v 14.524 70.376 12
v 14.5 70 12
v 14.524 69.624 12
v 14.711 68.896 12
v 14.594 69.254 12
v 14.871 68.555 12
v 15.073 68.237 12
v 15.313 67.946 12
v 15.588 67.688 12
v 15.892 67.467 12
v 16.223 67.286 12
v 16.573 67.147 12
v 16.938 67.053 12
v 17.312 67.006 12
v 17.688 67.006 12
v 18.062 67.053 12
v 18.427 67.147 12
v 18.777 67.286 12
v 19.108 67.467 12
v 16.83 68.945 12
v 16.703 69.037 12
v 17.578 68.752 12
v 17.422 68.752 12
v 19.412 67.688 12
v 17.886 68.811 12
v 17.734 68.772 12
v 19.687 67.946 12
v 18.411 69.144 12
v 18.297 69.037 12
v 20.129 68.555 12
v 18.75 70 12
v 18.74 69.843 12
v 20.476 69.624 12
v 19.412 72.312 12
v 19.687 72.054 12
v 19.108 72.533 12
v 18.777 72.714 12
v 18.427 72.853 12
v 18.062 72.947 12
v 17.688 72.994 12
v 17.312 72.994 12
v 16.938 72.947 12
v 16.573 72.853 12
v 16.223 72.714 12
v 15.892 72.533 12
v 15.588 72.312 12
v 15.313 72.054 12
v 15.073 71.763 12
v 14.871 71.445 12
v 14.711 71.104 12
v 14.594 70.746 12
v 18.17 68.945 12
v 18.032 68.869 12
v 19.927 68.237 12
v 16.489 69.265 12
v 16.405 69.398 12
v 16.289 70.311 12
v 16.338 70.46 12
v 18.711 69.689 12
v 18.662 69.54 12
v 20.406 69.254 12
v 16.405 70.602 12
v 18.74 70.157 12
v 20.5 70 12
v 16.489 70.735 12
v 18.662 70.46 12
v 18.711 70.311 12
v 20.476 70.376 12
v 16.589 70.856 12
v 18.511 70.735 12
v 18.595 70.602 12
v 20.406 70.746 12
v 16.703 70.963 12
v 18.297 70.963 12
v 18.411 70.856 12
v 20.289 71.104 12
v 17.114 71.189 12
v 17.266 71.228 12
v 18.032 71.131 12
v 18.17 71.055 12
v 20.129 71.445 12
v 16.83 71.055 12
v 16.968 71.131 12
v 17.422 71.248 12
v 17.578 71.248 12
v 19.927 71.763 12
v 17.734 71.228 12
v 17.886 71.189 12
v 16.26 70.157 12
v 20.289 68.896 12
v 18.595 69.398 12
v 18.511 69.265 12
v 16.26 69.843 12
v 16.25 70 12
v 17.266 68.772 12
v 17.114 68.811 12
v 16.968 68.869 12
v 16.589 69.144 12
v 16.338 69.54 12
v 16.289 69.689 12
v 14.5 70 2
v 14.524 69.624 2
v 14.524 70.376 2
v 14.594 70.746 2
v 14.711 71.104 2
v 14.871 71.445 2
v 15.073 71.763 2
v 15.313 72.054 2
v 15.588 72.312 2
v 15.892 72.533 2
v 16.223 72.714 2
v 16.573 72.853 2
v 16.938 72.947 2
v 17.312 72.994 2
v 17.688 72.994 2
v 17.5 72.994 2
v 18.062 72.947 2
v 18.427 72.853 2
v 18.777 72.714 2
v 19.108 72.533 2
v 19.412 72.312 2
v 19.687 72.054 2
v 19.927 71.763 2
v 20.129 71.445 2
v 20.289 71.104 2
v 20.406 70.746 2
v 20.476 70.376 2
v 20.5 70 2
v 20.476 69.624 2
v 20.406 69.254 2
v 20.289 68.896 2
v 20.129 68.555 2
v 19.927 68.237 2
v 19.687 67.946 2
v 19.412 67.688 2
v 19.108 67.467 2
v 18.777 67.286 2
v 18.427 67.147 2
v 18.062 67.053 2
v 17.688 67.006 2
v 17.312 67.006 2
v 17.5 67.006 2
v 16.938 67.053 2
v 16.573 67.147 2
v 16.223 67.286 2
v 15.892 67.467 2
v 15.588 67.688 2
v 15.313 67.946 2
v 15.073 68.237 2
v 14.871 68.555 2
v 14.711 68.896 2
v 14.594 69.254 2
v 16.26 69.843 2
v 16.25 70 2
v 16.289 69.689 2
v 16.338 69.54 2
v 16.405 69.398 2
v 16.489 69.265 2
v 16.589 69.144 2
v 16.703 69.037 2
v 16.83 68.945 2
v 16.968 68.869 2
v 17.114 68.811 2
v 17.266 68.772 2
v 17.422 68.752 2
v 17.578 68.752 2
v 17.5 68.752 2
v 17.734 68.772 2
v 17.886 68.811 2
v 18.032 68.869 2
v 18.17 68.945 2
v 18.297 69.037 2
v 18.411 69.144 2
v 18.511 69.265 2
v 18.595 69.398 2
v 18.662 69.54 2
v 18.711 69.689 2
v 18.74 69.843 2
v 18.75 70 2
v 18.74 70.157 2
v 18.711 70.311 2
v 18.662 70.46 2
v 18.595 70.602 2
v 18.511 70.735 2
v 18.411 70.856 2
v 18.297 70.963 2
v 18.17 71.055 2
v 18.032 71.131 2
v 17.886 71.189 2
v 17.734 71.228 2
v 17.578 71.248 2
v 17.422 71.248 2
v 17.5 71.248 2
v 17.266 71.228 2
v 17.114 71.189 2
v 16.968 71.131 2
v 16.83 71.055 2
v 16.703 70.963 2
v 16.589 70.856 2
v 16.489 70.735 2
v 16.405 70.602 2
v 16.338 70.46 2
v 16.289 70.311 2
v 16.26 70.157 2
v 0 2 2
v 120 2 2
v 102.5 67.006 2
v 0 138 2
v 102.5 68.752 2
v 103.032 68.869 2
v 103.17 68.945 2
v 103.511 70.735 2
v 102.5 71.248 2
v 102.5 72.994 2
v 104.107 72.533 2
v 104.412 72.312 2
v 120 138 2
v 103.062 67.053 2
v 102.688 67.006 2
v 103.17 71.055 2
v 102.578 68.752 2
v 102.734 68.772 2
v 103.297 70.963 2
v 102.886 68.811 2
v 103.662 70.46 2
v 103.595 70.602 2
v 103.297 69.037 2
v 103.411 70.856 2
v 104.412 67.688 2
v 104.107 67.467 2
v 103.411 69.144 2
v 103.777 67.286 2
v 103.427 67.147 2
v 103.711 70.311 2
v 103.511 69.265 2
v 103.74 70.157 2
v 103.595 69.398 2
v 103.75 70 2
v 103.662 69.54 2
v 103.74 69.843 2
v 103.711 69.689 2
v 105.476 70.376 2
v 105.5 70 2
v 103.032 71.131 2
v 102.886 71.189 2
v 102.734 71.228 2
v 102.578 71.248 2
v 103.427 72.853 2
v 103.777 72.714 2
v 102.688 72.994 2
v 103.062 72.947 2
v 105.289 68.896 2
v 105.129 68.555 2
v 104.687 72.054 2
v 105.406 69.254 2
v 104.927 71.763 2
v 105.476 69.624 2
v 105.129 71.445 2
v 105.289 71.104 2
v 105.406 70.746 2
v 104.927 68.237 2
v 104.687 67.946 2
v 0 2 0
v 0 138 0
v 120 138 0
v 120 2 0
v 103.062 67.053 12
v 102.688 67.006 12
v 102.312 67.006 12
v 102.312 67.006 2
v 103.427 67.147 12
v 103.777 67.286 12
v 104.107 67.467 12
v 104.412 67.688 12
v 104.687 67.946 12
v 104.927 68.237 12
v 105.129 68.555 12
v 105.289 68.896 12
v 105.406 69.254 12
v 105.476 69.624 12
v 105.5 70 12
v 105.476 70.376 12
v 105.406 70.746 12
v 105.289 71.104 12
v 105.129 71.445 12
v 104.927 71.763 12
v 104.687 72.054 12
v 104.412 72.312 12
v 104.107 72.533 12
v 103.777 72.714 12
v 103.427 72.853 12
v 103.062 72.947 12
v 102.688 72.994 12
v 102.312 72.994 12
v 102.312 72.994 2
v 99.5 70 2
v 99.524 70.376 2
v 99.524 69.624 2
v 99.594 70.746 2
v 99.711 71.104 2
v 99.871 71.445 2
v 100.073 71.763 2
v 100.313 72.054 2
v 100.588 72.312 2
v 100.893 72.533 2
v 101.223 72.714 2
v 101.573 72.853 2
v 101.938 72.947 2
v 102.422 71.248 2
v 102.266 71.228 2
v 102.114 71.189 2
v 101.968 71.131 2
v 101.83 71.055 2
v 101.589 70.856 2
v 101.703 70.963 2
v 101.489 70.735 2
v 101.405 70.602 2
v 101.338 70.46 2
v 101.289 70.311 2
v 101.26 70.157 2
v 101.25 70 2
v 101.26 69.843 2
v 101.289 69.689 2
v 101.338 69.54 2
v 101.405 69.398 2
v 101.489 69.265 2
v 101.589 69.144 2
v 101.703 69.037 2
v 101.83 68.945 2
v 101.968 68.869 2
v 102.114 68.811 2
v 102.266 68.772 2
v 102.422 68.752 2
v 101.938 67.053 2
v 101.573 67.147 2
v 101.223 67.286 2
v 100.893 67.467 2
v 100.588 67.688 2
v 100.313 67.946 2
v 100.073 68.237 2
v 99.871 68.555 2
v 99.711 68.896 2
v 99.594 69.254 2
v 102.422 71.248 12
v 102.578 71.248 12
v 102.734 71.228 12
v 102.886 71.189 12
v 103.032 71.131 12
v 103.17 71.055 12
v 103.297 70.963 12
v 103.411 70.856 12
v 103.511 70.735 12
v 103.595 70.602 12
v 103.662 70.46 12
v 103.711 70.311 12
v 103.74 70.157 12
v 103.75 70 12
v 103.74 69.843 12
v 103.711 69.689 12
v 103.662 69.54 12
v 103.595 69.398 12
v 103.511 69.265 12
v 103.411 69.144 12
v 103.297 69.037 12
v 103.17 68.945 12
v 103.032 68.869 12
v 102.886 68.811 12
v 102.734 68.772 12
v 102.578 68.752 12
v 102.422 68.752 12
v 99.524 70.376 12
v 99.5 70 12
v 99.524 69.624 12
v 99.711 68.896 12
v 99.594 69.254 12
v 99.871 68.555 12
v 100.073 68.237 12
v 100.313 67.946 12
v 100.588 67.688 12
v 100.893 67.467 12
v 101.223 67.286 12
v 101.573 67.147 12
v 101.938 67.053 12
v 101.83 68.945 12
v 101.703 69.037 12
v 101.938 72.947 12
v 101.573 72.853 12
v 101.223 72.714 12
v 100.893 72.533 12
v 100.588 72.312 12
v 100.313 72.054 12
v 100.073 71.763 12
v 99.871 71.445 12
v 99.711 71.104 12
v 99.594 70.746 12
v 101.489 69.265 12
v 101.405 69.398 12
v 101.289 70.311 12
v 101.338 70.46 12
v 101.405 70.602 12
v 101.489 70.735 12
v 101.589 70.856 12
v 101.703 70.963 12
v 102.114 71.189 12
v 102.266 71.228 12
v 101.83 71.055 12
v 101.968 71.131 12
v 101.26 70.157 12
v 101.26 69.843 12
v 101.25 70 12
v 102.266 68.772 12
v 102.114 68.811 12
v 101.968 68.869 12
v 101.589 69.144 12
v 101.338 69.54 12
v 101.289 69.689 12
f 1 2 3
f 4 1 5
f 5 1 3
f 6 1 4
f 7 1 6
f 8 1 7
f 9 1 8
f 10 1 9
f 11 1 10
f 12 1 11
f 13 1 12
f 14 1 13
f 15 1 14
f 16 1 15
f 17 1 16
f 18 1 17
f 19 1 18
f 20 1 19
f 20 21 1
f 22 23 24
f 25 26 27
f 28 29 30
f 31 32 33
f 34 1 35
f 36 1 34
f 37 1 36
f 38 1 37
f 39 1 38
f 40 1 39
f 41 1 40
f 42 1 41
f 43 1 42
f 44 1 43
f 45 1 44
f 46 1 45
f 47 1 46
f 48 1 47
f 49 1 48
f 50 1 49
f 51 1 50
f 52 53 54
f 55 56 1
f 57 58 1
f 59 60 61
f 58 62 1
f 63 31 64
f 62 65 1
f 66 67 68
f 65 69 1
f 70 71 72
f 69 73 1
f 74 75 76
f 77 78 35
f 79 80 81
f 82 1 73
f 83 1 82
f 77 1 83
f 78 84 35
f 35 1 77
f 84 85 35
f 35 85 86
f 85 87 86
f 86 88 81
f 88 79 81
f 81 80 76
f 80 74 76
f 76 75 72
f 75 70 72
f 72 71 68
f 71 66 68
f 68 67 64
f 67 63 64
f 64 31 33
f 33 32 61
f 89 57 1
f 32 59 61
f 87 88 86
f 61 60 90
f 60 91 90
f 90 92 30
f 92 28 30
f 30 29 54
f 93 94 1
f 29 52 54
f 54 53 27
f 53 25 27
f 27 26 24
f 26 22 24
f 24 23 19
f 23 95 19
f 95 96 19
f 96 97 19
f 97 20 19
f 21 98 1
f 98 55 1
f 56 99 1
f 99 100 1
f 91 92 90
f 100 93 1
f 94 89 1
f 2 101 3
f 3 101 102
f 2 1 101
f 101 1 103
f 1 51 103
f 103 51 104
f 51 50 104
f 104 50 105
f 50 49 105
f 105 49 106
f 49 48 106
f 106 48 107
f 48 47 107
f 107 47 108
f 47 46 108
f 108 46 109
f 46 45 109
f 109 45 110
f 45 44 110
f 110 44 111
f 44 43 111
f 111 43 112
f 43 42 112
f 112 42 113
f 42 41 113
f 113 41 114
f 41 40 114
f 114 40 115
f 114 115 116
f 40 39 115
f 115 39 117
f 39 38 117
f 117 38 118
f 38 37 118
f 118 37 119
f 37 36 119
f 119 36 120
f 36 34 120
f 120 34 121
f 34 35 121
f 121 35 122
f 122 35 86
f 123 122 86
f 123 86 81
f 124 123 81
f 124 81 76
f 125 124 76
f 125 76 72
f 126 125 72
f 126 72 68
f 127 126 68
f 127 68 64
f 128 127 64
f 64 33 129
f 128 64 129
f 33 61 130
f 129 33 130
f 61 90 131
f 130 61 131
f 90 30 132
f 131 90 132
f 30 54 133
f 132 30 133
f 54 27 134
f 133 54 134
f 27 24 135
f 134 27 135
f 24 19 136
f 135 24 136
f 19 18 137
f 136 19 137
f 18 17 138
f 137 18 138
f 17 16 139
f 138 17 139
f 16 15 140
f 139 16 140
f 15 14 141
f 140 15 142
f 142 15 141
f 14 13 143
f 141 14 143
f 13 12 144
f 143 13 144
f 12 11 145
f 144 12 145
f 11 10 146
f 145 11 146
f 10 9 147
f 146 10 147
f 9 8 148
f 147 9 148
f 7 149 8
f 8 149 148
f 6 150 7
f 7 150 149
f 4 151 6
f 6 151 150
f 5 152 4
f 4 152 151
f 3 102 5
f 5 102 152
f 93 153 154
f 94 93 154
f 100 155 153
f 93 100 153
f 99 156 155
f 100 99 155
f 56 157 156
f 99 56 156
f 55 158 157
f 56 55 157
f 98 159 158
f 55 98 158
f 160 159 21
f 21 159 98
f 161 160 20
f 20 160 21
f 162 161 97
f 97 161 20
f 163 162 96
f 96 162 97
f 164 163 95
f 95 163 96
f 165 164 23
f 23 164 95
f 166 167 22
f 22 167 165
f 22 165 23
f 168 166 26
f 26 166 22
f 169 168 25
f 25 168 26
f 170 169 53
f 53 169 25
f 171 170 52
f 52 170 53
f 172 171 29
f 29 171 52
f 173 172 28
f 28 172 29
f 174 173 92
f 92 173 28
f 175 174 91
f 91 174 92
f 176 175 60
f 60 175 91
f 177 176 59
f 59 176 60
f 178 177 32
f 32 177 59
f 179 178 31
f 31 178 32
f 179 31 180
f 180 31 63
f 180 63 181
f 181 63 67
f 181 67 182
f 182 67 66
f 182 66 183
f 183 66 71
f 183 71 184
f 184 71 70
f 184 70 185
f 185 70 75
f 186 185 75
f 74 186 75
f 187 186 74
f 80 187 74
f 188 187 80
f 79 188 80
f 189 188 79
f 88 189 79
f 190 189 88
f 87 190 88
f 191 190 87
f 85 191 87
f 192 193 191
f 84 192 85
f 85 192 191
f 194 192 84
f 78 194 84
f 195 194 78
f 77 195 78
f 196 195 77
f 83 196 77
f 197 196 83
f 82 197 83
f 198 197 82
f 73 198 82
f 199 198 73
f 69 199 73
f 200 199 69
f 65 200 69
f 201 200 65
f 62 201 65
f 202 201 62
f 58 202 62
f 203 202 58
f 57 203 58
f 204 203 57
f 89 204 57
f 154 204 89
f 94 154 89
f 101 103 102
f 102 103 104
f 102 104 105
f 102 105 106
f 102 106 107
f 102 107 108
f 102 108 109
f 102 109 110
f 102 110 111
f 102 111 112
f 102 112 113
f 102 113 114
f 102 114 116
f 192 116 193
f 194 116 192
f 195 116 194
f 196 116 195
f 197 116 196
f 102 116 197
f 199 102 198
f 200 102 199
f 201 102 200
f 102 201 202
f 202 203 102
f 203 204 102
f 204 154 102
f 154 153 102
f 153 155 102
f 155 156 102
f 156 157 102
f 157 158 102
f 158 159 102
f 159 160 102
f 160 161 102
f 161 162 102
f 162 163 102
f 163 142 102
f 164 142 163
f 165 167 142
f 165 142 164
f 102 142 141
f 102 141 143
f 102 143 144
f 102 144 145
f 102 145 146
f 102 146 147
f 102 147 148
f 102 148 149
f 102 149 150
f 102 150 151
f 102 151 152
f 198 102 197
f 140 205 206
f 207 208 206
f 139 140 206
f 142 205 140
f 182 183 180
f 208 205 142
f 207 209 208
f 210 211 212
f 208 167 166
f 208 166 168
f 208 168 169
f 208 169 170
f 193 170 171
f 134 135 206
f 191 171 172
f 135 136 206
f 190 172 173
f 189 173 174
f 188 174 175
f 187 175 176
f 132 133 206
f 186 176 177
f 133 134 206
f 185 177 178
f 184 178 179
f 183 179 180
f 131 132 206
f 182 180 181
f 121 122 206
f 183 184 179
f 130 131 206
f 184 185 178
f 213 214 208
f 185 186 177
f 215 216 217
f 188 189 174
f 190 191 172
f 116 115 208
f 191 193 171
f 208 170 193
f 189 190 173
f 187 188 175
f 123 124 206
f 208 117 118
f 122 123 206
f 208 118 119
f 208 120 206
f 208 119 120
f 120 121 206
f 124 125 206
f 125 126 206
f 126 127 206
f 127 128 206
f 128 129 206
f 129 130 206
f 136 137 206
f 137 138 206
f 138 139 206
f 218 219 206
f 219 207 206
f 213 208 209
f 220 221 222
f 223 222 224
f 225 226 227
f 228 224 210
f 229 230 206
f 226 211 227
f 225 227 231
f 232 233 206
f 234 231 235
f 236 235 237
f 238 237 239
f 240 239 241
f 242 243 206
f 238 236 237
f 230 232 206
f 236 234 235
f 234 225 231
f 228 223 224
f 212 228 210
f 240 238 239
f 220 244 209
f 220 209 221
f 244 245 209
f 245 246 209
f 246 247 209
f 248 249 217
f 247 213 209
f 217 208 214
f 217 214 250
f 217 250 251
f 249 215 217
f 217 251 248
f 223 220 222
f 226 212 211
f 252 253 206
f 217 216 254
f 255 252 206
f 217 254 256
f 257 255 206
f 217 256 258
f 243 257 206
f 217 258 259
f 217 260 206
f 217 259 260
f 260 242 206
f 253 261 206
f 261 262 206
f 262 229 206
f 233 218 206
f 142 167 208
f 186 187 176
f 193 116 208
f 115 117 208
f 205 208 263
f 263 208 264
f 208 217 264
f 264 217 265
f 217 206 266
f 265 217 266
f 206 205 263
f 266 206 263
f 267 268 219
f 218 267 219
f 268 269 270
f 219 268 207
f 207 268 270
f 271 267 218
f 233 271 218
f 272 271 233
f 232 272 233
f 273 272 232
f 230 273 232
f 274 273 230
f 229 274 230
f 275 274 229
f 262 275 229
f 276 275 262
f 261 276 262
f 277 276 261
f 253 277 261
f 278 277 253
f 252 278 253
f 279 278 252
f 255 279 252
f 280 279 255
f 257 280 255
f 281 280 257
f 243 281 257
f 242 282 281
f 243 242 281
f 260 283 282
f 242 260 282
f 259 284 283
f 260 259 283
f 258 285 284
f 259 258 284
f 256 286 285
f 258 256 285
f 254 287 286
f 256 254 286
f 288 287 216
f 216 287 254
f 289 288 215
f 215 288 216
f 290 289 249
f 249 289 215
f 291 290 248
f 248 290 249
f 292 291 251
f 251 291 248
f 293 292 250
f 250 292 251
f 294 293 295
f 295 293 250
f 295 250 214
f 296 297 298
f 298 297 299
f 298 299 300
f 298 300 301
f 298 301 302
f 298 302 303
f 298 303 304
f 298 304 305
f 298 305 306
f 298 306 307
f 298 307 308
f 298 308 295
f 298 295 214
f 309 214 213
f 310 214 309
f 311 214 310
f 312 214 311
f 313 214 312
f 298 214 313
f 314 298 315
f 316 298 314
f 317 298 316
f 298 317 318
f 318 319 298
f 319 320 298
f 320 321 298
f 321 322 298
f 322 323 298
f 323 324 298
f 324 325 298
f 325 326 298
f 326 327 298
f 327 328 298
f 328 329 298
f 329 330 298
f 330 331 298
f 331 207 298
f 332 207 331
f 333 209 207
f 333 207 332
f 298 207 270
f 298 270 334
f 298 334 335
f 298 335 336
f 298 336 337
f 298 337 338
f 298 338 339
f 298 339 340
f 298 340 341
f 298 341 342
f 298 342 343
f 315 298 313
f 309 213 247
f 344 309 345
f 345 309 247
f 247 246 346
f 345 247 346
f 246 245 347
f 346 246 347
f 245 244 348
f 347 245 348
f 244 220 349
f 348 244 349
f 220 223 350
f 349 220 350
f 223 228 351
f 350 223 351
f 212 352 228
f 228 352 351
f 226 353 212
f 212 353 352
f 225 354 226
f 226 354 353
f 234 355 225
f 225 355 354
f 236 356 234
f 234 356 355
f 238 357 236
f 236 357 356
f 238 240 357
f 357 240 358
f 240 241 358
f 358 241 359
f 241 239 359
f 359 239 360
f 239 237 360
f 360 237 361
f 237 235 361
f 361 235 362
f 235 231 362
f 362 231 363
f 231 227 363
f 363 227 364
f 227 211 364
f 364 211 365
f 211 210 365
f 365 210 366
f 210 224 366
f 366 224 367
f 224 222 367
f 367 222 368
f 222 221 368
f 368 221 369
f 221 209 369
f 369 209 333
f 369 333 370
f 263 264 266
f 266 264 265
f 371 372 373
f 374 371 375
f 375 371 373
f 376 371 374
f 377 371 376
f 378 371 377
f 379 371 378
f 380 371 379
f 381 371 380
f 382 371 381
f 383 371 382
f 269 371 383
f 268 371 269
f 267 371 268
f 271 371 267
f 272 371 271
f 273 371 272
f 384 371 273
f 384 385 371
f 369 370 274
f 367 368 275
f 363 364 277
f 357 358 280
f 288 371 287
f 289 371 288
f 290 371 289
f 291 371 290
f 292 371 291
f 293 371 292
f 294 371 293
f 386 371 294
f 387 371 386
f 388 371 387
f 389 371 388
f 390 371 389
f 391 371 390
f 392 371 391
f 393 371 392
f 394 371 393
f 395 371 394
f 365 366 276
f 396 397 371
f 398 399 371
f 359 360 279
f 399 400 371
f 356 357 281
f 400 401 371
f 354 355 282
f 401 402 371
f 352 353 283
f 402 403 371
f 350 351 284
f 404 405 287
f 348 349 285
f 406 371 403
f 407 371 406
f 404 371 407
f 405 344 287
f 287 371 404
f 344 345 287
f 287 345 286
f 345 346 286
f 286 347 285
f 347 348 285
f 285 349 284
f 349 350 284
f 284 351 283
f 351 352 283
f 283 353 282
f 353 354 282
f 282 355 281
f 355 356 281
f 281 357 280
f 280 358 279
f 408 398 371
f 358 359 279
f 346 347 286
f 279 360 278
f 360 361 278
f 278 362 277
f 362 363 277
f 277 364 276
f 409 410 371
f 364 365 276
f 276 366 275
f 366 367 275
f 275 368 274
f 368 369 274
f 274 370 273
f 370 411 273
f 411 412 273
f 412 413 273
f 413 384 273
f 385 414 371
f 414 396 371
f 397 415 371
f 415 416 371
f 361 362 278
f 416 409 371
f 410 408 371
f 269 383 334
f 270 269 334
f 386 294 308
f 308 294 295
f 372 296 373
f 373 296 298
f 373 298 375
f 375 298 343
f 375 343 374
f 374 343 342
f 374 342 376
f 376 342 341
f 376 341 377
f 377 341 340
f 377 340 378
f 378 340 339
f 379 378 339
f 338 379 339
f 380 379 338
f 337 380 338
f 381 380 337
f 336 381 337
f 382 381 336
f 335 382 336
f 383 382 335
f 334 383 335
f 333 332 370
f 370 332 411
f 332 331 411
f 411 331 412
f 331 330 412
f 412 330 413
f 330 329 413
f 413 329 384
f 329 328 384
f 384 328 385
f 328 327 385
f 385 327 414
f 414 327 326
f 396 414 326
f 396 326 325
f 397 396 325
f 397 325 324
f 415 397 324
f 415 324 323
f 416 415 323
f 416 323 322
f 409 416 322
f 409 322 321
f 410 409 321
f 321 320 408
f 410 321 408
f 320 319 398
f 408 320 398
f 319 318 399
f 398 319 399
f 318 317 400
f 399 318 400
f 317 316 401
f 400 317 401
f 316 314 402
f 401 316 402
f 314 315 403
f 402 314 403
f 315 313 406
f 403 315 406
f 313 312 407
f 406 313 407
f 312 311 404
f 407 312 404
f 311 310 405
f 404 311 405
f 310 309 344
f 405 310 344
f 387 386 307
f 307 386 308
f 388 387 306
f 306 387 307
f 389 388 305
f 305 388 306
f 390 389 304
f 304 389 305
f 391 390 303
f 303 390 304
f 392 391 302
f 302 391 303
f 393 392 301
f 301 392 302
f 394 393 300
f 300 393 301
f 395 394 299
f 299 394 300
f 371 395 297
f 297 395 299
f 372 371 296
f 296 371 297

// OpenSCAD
// file: ../pi_mount.scad
module Standoff(h, r1, r2){
  difference() {
    cylinder(h=h, r=r1, $fn=50);
    cylinder(h=h+0.01, r=r2, $fn=50);
  }
}

module PiMount(){
  cube([85, 56, 1]);
  translate([24.05, 16.55, 1]) Standoff(6, 3, 1.5);
  translate([78.55, 44.95, 1]) Standoff(6, 3, 1.5);
}

module RelayMount(height){
  cube([75, 55, 1]);
  inner = 1.4;
  outer = 3;
  translate([3, 3, 1]) Standoff(height, outer, inner);
  translate([72, 3, 1]) Standoff(height, outer, inner);
  translate([3, 52, 1]) Standoff(height, outer, inner);
  translate([72, 52, 1]) Standoff(height, outer, inner);
}

module BarrierStripMount(depth){
  translate([5, 11, -depth]) cylinder(h=depth+0.2, r=2, $fn=50);
  translate([120, 11, -depth]) cylinder(h=depth+0.2, r=2, $fn=50);
}

translate([-62.5, -11, 0]) difference(){
  BarrierStripMount(depth=1.5);
}
// file: ../outlet.scad
module OutletMount(depth, height) {
  translate([0, 0, -depth]){
    cylinder(h=depth+0.1, r=1.25, $fn=50);
    translate([0, height, 0]) cylinder(h=depth+0.1, r=1.25, $fn=50);
  }
}

module OutletsMount(n_outlets, spacing, outlet_depth, outlet_height){
  for (x = [0:spacing:(n_outlets - 1) * spacing]){
    translate([x, 0, 0]) OutletMount(depth=outlet_depth, height=outlet_height);
  }
}

rotate([90, 0, 0]) difference(){
  translate([-50, -50, -1]) cube([2000, 2000, 1]);
  color("blue") OutletsMount(n_outlets=4, spacing=47, outlet_depth=2, outlet_height=85);
}
// file: ../rat_trap.scad
use <outlet.scad>
use <pi_mount.scad>

module RatTrapBox(length=215, width=140, height=120, thickness=2){
  union() {
    BottomFace(length=length-thickness*2, width=width-thickness*2, thickness=thickness); 
    FrontFace(length=length, height=height, thickness=thickness, hole_length=190, hole_height=80);
    RearFace(length=length, height=height, box_width=width, thickness=thickness);
    LeftFace(width=width-thickness*2, height=height, thickness=thickness);
    RightFace(width=width-thickness*2, height=height, thickness=thickness, box_length=length);
  }
}

module FrontFace(length, height, thickness, hole_length, hole_height){
  difference() {
    cube([length, thickness, height]);
    // Make the hole
    translate([(length-hole_length)/2, -0.05, (height-hole_height)/2]) cube([hole_length, thickness+0.1, hole_height]);
    // Make outlet screw ports
    color("blue") translate([(length-141)/2, 0, (height-85)/2]){
      rotate([90, 0, 0]){
        OutletsMount(n_outlets=4, spacing=47, outlet_depth=20, outlet_height=85);
      }
    }
  }
}

module RearFace(length, height, box_width, thickness){
  translate([0, box_width-thickness, 0]){
    difference(){
      cube([length, thickness, height]);
      translate([length/2, -0.05, thickness + 10]){
        rotate([-90, 0, 0]) cylinder(h=thickness+0.1, r=5);
      }
    }
    translate([(length-85)/2 + 85, 0.99, (height-56)/2 + 56 + 10]){
      rotate([-90, 0, 180]) color("green") PiMount();
    }
  }
  
}

module BottomFace(length, width, thickness){
  translate([thickness, thickness, 0]){
  difference(){
    cube([length, width, thickness]);
    translate([(length-125)/2, 25, thickness]){
      color("orange") BarrierStripMount(depth=1.5);
    }
  }
  translate([(length-75)/2, (width-55)/2 + 10, thickness]){
    color("red") RelayMount(height=20);
  }
  }
}

module LeftFace(width, height, thickness){
  translate([0, thickness, 0]){
    cube([thickness, width, height]);
  }
}

module RightFace(width, height, thickness, box_length){
  translate([box_length-thickness, thickness, 0]){
    cube([thickness, width, height]);
    translate([0, width/2, (height-85)/2]){
      color("purple") rotate([0, -90, 0]) Standoff(h=10, r1=3, r2=1.25);
    }
    translate([0, width/2, height - (height-85)/2]){
      color("purple") rotate([0, -90, 0]) Standoff(h=10, r1=3, r2=1.25);
    }
  }
}

translate([-112.5, -75, -60]) RatTrapBox();
// main file
use <../rat_trap.scad>

rotate([0, 90, 0]) RightFace(width=136, height=120, thickness=2, box_length=0);
